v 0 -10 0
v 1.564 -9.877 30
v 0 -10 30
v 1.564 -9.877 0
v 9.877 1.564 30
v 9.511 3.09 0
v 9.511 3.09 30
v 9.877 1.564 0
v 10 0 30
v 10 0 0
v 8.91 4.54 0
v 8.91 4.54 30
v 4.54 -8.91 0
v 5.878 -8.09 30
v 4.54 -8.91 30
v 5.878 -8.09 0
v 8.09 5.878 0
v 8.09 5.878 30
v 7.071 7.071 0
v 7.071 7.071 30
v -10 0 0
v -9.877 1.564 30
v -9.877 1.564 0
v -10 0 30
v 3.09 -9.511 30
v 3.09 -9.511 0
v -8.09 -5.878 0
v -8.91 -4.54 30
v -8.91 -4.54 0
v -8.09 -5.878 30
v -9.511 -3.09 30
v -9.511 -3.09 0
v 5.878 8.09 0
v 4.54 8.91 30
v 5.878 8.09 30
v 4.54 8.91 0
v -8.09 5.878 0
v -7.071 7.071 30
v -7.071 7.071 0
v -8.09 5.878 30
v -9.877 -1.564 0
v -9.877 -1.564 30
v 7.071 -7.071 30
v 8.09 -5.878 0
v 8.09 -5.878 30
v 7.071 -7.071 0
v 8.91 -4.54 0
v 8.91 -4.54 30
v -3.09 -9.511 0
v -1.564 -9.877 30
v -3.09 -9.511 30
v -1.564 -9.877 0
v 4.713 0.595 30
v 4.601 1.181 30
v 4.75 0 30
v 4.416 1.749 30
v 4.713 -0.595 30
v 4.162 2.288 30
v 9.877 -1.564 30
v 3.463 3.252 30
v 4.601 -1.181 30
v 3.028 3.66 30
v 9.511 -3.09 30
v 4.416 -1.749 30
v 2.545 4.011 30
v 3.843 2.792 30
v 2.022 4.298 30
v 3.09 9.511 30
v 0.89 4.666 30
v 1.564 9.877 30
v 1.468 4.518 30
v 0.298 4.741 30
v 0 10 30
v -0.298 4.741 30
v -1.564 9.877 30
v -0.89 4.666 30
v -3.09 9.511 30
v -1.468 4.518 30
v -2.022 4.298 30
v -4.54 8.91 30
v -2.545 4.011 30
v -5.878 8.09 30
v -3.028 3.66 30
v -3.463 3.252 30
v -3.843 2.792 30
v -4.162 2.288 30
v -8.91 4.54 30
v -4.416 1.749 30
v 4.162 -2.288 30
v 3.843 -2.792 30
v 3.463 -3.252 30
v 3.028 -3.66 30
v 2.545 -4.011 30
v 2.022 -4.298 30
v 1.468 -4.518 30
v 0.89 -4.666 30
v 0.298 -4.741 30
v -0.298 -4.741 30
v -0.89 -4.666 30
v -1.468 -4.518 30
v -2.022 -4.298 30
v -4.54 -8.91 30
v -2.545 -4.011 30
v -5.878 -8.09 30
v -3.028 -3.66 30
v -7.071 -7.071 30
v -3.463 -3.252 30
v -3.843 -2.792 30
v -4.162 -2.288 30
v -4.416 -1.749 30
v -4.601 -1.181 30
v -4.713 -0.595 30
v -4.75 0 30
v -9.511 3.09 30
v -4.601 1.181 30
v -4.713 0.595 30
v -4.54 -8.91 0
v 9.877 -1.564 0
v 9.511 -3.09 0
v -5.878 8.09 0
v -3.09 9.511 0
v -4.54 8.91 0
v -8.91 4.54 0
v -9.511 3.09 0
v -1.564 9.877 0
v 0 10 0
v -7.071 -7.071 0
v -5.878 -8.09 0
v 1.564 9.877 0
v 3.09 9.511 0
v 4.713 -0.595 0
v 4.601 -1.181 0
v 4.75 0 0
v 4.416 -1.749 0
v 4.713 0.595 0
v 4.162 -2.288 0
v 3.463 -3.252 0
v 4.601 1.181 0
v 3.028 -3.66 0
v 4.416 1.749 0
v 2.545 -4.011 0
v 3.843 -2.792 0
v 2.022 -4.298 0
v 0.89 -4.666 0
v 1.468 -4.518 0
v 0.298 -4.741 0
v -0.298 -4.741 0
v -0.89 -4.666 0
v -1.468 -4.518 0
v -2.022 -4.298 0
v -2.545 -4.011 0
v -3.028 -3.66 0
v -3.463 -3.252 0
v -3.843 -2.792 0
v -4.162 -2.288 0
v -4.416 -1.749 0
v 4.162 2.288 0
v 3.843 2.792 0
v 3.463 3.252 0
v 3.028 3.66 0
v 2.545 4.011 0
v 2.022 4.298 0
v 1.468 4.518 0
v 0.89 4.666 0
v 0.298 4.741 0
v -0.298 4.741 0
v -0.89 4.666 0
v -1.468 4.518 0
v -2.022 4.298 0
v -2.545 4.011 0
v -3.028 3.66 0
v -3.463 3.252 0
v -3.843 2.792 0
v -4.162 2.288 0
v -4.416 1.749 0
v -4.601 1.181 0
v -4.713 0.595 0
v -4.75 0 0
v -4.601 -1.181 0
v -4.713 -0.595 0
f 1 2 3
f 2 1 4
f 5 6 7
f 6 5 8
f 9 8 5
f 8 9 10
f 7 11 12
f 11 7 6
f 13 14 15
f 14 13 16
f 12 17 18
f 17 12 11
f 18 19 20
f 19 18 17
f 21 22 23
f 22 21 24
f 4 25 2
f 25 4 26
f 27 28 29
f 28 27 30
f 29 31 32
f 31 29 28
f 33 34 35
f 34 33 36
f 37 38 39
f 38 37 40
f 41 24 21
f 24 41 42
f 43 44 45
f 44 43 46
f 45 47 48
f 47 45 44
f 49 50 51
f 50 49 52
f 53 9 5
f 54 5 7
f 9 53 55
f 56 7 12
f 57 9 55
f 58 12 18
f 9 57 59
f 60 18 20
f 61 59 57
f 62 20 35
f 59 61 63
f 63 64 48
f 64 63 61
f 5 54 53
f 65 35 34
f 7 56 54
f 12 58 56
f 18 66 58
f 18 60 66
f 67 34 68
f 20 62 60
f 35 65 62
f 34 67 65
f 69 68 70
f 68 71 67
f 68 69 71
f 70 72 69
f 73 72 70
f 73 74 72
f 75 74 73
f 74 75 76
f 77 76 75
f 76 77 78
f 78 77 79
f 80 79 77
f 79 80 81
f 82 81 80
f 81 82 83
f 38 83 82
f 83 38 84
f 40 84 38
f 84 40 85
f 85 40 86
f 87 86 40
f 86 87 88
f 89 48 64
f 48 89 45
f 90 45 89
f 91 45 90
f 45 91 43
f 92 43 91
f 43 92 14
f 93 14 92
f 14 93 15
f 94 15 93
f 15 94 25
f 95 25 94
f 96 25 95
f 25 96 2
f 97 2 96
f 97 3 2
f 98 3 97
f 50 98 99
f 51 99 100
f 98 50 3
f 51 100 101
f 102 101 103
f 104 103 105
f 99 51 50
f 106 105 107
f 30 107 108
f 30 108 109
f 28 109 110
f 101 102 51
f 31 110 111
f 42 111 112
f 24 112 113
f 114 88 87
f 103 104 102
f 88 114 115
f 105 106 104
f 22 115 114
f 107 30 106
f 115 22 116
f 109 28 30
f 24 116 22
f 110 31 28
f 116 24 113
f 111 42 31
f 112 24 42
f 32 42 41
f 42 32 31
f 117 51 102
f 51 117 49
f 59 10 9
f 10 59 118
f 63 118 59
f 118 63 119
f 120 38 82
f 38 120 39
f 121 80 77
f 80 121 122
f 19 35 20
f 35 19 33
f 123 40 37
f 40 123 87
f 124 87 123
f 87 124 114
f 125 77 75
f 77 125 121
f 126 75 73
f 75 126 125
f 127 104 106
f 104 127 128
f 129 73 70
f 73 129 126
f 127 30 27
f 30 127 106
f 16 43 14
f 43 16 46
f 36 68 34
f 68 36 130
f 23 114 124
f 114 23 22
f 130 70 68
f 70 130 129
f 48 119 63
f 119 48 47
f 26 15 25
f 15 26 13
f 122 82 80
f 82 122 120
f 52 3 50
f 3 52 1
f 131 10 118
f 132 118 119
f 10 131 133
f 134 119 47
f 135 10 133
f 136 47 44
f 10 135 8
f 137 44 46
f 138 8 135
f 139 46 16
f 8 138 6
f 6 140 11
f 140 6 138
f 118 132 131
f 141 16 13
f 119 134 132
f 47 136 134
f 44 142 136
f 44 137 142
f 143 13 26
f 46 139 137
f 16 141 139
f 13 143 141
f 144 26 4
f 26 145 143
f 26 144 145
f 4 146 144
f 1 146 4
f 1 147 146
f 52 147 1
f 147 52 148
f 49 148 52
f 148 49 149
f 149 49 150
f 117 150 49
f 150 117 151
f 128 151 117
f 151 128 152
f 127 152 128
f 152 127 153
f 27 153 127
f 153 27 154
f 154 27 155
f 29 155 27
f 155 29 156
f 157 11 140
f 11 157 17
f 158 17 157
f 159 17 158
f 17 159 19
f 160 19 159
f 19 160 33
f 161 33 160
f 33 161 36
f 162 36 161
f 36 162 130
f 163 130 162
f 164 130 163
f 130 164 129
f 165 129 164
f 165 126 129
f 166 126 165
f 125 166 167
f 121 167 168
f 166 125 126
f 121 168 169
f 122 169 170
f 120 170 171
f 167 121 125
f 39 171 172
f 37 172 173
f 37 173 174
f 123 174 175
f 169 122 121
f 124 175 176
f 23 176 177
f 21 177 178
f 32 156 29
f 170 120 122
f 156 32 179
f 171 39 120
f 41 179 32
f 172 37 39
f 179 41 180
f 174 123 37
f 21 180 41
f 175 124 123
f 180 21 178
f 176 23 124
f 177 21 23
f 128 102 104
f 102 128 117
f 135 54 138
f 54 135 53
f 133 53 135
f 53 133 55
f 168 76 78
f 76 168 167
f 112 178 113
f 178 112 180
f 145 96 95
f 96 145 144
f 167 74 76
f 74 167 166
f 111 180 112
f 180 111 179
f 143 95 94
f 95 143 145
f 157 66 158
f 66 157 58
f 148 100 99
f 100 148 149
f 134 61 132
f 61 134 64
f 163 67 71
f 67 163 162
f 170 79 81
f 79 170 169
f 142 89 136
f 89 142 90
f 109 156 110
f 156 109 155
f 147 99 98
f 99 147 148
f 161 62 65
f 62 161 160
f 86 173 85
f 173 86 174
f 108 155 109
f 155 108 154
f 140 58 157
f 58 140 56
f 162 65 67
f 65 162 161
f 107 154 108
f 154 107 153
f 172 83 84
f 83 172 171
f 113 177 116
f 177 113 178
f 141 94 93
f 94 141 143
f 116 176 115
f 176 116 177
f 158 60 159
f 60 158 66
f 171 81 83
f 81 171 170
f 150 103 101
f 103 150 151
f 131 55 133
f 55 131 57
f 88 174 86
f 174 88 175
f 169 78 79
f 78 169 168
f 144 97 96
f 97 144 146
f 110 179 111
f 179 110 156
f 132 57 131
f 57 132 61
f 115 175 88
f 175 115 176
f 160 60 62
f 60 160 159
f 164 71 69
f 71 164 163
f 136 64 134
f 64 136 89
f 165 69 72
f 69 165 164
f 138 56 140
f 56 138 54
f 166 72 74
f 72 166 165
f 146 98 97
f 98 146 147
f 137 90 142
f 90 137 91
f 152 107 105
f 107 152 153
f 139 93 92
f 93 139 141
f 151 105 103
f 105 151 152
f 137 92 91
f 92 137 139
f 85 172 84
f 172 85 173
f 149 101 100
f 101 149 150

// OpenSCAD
//measurements

//https://www.lofty.com/pages/how-to-measure-three-dimensional-objects-including-silver-ceramics-glass-sculpture


//main body (looking from front)

main_body_height = 22;
main_body_width = 120;
main_body_depth = 51;
main_body_distance_between_two_main_bodies = 29; 

//main body tube
main_body_tube_diameter = 22;
//Tube bit

tube_bit_height = 60;
tube_bit_diameter = 45;//was 30.4
tube_bit_hole_diameter = 18;

//tube screen holder
tube_screen_holder_height = tube_bit_height-10;
tube_screen_holder_diameter = 36; //+1mm
tube_screen_holder_hole_diameter = 29;


//bearing

bearing_diameter = 41;
bearing_height = 13;

nut_height = 8.5;
nut_width = 20;


 

//threaded shaft
threaded_shaft_diameter = 12;

module tube_screen_holder(){
    difference(){
        cylinder(h=tube_screen_holder_height, r=(tube_screen_holder_diameter)/2, $fn=50);
        cylinder(h=tube_screen_holder_height, r=(tube_screen_holder_hole_diameter)/2, $fn=50);
    }
}

module tube_bit(){
            cylinder(h=tube_bit_height, r=(tube_bit_diameter)/2, $fn=50);
}
module tube_bit_hole_inside(){
    cylinder(h=tube_bit_height+(main_body_height-bearing_height), r=(tube_bit_hole_diameter)/2, $fn=50);
}
    
module main_body_tube(){
    translate([main_body_height/2,0,main_body_height/2]){
        rotate ([90,0,0])
            cylinder(h=main_body_width, r=(main_body_tube_diameter)/2, $fn=50);
    }
}
module bearing(){
    //translate([main_body_depth/2,-main_body_width/2,0])
    cylinder(h=bearing_height, r=(bearing_diameter)/2, $fn=50);
}
module nut(){
    cylinder(h=bearing_diameter+(nut_height*2), r=nut_width/2, $fn=6);
   }

module holes_for_threaded_shaft(){
     translate([main_body_height/2,0,main_body_height/2]){
        rotate ([90,0,0])
            cylinder(h=main_body_width, r=(threaded_shaft_diameter)/2, $fn=50);
    }
    translate([(main_body_height/2)+main_body_distance_between_two_main_bodies,0,main_body_height/2]){
        rotate ([90,0,0])
            cylinder(h=main_body_width, r=(threaded_shaft_diameter)/2, $fn=50);
    }
}

module nut_negative(x_offset,y_offset,z_offset){
    translate([main_body_height/2+x_offset,0+y_offset,(main_body_height/2)+z_offset]){
        rotate ([90,0,0])
            nut();
    }
}
module main_body(){
  difference(){
    cylinder(h=30, d=20, $fn=40);
    translate([0,0,0]){cylinder(h=30, r=(9.5/2), $fn=50);}
  }
//color ("red") {nut_negative(0,-((main_body_width/2)-(bearing_diameter/2)-nut_height),0);}         
}


main_body();
